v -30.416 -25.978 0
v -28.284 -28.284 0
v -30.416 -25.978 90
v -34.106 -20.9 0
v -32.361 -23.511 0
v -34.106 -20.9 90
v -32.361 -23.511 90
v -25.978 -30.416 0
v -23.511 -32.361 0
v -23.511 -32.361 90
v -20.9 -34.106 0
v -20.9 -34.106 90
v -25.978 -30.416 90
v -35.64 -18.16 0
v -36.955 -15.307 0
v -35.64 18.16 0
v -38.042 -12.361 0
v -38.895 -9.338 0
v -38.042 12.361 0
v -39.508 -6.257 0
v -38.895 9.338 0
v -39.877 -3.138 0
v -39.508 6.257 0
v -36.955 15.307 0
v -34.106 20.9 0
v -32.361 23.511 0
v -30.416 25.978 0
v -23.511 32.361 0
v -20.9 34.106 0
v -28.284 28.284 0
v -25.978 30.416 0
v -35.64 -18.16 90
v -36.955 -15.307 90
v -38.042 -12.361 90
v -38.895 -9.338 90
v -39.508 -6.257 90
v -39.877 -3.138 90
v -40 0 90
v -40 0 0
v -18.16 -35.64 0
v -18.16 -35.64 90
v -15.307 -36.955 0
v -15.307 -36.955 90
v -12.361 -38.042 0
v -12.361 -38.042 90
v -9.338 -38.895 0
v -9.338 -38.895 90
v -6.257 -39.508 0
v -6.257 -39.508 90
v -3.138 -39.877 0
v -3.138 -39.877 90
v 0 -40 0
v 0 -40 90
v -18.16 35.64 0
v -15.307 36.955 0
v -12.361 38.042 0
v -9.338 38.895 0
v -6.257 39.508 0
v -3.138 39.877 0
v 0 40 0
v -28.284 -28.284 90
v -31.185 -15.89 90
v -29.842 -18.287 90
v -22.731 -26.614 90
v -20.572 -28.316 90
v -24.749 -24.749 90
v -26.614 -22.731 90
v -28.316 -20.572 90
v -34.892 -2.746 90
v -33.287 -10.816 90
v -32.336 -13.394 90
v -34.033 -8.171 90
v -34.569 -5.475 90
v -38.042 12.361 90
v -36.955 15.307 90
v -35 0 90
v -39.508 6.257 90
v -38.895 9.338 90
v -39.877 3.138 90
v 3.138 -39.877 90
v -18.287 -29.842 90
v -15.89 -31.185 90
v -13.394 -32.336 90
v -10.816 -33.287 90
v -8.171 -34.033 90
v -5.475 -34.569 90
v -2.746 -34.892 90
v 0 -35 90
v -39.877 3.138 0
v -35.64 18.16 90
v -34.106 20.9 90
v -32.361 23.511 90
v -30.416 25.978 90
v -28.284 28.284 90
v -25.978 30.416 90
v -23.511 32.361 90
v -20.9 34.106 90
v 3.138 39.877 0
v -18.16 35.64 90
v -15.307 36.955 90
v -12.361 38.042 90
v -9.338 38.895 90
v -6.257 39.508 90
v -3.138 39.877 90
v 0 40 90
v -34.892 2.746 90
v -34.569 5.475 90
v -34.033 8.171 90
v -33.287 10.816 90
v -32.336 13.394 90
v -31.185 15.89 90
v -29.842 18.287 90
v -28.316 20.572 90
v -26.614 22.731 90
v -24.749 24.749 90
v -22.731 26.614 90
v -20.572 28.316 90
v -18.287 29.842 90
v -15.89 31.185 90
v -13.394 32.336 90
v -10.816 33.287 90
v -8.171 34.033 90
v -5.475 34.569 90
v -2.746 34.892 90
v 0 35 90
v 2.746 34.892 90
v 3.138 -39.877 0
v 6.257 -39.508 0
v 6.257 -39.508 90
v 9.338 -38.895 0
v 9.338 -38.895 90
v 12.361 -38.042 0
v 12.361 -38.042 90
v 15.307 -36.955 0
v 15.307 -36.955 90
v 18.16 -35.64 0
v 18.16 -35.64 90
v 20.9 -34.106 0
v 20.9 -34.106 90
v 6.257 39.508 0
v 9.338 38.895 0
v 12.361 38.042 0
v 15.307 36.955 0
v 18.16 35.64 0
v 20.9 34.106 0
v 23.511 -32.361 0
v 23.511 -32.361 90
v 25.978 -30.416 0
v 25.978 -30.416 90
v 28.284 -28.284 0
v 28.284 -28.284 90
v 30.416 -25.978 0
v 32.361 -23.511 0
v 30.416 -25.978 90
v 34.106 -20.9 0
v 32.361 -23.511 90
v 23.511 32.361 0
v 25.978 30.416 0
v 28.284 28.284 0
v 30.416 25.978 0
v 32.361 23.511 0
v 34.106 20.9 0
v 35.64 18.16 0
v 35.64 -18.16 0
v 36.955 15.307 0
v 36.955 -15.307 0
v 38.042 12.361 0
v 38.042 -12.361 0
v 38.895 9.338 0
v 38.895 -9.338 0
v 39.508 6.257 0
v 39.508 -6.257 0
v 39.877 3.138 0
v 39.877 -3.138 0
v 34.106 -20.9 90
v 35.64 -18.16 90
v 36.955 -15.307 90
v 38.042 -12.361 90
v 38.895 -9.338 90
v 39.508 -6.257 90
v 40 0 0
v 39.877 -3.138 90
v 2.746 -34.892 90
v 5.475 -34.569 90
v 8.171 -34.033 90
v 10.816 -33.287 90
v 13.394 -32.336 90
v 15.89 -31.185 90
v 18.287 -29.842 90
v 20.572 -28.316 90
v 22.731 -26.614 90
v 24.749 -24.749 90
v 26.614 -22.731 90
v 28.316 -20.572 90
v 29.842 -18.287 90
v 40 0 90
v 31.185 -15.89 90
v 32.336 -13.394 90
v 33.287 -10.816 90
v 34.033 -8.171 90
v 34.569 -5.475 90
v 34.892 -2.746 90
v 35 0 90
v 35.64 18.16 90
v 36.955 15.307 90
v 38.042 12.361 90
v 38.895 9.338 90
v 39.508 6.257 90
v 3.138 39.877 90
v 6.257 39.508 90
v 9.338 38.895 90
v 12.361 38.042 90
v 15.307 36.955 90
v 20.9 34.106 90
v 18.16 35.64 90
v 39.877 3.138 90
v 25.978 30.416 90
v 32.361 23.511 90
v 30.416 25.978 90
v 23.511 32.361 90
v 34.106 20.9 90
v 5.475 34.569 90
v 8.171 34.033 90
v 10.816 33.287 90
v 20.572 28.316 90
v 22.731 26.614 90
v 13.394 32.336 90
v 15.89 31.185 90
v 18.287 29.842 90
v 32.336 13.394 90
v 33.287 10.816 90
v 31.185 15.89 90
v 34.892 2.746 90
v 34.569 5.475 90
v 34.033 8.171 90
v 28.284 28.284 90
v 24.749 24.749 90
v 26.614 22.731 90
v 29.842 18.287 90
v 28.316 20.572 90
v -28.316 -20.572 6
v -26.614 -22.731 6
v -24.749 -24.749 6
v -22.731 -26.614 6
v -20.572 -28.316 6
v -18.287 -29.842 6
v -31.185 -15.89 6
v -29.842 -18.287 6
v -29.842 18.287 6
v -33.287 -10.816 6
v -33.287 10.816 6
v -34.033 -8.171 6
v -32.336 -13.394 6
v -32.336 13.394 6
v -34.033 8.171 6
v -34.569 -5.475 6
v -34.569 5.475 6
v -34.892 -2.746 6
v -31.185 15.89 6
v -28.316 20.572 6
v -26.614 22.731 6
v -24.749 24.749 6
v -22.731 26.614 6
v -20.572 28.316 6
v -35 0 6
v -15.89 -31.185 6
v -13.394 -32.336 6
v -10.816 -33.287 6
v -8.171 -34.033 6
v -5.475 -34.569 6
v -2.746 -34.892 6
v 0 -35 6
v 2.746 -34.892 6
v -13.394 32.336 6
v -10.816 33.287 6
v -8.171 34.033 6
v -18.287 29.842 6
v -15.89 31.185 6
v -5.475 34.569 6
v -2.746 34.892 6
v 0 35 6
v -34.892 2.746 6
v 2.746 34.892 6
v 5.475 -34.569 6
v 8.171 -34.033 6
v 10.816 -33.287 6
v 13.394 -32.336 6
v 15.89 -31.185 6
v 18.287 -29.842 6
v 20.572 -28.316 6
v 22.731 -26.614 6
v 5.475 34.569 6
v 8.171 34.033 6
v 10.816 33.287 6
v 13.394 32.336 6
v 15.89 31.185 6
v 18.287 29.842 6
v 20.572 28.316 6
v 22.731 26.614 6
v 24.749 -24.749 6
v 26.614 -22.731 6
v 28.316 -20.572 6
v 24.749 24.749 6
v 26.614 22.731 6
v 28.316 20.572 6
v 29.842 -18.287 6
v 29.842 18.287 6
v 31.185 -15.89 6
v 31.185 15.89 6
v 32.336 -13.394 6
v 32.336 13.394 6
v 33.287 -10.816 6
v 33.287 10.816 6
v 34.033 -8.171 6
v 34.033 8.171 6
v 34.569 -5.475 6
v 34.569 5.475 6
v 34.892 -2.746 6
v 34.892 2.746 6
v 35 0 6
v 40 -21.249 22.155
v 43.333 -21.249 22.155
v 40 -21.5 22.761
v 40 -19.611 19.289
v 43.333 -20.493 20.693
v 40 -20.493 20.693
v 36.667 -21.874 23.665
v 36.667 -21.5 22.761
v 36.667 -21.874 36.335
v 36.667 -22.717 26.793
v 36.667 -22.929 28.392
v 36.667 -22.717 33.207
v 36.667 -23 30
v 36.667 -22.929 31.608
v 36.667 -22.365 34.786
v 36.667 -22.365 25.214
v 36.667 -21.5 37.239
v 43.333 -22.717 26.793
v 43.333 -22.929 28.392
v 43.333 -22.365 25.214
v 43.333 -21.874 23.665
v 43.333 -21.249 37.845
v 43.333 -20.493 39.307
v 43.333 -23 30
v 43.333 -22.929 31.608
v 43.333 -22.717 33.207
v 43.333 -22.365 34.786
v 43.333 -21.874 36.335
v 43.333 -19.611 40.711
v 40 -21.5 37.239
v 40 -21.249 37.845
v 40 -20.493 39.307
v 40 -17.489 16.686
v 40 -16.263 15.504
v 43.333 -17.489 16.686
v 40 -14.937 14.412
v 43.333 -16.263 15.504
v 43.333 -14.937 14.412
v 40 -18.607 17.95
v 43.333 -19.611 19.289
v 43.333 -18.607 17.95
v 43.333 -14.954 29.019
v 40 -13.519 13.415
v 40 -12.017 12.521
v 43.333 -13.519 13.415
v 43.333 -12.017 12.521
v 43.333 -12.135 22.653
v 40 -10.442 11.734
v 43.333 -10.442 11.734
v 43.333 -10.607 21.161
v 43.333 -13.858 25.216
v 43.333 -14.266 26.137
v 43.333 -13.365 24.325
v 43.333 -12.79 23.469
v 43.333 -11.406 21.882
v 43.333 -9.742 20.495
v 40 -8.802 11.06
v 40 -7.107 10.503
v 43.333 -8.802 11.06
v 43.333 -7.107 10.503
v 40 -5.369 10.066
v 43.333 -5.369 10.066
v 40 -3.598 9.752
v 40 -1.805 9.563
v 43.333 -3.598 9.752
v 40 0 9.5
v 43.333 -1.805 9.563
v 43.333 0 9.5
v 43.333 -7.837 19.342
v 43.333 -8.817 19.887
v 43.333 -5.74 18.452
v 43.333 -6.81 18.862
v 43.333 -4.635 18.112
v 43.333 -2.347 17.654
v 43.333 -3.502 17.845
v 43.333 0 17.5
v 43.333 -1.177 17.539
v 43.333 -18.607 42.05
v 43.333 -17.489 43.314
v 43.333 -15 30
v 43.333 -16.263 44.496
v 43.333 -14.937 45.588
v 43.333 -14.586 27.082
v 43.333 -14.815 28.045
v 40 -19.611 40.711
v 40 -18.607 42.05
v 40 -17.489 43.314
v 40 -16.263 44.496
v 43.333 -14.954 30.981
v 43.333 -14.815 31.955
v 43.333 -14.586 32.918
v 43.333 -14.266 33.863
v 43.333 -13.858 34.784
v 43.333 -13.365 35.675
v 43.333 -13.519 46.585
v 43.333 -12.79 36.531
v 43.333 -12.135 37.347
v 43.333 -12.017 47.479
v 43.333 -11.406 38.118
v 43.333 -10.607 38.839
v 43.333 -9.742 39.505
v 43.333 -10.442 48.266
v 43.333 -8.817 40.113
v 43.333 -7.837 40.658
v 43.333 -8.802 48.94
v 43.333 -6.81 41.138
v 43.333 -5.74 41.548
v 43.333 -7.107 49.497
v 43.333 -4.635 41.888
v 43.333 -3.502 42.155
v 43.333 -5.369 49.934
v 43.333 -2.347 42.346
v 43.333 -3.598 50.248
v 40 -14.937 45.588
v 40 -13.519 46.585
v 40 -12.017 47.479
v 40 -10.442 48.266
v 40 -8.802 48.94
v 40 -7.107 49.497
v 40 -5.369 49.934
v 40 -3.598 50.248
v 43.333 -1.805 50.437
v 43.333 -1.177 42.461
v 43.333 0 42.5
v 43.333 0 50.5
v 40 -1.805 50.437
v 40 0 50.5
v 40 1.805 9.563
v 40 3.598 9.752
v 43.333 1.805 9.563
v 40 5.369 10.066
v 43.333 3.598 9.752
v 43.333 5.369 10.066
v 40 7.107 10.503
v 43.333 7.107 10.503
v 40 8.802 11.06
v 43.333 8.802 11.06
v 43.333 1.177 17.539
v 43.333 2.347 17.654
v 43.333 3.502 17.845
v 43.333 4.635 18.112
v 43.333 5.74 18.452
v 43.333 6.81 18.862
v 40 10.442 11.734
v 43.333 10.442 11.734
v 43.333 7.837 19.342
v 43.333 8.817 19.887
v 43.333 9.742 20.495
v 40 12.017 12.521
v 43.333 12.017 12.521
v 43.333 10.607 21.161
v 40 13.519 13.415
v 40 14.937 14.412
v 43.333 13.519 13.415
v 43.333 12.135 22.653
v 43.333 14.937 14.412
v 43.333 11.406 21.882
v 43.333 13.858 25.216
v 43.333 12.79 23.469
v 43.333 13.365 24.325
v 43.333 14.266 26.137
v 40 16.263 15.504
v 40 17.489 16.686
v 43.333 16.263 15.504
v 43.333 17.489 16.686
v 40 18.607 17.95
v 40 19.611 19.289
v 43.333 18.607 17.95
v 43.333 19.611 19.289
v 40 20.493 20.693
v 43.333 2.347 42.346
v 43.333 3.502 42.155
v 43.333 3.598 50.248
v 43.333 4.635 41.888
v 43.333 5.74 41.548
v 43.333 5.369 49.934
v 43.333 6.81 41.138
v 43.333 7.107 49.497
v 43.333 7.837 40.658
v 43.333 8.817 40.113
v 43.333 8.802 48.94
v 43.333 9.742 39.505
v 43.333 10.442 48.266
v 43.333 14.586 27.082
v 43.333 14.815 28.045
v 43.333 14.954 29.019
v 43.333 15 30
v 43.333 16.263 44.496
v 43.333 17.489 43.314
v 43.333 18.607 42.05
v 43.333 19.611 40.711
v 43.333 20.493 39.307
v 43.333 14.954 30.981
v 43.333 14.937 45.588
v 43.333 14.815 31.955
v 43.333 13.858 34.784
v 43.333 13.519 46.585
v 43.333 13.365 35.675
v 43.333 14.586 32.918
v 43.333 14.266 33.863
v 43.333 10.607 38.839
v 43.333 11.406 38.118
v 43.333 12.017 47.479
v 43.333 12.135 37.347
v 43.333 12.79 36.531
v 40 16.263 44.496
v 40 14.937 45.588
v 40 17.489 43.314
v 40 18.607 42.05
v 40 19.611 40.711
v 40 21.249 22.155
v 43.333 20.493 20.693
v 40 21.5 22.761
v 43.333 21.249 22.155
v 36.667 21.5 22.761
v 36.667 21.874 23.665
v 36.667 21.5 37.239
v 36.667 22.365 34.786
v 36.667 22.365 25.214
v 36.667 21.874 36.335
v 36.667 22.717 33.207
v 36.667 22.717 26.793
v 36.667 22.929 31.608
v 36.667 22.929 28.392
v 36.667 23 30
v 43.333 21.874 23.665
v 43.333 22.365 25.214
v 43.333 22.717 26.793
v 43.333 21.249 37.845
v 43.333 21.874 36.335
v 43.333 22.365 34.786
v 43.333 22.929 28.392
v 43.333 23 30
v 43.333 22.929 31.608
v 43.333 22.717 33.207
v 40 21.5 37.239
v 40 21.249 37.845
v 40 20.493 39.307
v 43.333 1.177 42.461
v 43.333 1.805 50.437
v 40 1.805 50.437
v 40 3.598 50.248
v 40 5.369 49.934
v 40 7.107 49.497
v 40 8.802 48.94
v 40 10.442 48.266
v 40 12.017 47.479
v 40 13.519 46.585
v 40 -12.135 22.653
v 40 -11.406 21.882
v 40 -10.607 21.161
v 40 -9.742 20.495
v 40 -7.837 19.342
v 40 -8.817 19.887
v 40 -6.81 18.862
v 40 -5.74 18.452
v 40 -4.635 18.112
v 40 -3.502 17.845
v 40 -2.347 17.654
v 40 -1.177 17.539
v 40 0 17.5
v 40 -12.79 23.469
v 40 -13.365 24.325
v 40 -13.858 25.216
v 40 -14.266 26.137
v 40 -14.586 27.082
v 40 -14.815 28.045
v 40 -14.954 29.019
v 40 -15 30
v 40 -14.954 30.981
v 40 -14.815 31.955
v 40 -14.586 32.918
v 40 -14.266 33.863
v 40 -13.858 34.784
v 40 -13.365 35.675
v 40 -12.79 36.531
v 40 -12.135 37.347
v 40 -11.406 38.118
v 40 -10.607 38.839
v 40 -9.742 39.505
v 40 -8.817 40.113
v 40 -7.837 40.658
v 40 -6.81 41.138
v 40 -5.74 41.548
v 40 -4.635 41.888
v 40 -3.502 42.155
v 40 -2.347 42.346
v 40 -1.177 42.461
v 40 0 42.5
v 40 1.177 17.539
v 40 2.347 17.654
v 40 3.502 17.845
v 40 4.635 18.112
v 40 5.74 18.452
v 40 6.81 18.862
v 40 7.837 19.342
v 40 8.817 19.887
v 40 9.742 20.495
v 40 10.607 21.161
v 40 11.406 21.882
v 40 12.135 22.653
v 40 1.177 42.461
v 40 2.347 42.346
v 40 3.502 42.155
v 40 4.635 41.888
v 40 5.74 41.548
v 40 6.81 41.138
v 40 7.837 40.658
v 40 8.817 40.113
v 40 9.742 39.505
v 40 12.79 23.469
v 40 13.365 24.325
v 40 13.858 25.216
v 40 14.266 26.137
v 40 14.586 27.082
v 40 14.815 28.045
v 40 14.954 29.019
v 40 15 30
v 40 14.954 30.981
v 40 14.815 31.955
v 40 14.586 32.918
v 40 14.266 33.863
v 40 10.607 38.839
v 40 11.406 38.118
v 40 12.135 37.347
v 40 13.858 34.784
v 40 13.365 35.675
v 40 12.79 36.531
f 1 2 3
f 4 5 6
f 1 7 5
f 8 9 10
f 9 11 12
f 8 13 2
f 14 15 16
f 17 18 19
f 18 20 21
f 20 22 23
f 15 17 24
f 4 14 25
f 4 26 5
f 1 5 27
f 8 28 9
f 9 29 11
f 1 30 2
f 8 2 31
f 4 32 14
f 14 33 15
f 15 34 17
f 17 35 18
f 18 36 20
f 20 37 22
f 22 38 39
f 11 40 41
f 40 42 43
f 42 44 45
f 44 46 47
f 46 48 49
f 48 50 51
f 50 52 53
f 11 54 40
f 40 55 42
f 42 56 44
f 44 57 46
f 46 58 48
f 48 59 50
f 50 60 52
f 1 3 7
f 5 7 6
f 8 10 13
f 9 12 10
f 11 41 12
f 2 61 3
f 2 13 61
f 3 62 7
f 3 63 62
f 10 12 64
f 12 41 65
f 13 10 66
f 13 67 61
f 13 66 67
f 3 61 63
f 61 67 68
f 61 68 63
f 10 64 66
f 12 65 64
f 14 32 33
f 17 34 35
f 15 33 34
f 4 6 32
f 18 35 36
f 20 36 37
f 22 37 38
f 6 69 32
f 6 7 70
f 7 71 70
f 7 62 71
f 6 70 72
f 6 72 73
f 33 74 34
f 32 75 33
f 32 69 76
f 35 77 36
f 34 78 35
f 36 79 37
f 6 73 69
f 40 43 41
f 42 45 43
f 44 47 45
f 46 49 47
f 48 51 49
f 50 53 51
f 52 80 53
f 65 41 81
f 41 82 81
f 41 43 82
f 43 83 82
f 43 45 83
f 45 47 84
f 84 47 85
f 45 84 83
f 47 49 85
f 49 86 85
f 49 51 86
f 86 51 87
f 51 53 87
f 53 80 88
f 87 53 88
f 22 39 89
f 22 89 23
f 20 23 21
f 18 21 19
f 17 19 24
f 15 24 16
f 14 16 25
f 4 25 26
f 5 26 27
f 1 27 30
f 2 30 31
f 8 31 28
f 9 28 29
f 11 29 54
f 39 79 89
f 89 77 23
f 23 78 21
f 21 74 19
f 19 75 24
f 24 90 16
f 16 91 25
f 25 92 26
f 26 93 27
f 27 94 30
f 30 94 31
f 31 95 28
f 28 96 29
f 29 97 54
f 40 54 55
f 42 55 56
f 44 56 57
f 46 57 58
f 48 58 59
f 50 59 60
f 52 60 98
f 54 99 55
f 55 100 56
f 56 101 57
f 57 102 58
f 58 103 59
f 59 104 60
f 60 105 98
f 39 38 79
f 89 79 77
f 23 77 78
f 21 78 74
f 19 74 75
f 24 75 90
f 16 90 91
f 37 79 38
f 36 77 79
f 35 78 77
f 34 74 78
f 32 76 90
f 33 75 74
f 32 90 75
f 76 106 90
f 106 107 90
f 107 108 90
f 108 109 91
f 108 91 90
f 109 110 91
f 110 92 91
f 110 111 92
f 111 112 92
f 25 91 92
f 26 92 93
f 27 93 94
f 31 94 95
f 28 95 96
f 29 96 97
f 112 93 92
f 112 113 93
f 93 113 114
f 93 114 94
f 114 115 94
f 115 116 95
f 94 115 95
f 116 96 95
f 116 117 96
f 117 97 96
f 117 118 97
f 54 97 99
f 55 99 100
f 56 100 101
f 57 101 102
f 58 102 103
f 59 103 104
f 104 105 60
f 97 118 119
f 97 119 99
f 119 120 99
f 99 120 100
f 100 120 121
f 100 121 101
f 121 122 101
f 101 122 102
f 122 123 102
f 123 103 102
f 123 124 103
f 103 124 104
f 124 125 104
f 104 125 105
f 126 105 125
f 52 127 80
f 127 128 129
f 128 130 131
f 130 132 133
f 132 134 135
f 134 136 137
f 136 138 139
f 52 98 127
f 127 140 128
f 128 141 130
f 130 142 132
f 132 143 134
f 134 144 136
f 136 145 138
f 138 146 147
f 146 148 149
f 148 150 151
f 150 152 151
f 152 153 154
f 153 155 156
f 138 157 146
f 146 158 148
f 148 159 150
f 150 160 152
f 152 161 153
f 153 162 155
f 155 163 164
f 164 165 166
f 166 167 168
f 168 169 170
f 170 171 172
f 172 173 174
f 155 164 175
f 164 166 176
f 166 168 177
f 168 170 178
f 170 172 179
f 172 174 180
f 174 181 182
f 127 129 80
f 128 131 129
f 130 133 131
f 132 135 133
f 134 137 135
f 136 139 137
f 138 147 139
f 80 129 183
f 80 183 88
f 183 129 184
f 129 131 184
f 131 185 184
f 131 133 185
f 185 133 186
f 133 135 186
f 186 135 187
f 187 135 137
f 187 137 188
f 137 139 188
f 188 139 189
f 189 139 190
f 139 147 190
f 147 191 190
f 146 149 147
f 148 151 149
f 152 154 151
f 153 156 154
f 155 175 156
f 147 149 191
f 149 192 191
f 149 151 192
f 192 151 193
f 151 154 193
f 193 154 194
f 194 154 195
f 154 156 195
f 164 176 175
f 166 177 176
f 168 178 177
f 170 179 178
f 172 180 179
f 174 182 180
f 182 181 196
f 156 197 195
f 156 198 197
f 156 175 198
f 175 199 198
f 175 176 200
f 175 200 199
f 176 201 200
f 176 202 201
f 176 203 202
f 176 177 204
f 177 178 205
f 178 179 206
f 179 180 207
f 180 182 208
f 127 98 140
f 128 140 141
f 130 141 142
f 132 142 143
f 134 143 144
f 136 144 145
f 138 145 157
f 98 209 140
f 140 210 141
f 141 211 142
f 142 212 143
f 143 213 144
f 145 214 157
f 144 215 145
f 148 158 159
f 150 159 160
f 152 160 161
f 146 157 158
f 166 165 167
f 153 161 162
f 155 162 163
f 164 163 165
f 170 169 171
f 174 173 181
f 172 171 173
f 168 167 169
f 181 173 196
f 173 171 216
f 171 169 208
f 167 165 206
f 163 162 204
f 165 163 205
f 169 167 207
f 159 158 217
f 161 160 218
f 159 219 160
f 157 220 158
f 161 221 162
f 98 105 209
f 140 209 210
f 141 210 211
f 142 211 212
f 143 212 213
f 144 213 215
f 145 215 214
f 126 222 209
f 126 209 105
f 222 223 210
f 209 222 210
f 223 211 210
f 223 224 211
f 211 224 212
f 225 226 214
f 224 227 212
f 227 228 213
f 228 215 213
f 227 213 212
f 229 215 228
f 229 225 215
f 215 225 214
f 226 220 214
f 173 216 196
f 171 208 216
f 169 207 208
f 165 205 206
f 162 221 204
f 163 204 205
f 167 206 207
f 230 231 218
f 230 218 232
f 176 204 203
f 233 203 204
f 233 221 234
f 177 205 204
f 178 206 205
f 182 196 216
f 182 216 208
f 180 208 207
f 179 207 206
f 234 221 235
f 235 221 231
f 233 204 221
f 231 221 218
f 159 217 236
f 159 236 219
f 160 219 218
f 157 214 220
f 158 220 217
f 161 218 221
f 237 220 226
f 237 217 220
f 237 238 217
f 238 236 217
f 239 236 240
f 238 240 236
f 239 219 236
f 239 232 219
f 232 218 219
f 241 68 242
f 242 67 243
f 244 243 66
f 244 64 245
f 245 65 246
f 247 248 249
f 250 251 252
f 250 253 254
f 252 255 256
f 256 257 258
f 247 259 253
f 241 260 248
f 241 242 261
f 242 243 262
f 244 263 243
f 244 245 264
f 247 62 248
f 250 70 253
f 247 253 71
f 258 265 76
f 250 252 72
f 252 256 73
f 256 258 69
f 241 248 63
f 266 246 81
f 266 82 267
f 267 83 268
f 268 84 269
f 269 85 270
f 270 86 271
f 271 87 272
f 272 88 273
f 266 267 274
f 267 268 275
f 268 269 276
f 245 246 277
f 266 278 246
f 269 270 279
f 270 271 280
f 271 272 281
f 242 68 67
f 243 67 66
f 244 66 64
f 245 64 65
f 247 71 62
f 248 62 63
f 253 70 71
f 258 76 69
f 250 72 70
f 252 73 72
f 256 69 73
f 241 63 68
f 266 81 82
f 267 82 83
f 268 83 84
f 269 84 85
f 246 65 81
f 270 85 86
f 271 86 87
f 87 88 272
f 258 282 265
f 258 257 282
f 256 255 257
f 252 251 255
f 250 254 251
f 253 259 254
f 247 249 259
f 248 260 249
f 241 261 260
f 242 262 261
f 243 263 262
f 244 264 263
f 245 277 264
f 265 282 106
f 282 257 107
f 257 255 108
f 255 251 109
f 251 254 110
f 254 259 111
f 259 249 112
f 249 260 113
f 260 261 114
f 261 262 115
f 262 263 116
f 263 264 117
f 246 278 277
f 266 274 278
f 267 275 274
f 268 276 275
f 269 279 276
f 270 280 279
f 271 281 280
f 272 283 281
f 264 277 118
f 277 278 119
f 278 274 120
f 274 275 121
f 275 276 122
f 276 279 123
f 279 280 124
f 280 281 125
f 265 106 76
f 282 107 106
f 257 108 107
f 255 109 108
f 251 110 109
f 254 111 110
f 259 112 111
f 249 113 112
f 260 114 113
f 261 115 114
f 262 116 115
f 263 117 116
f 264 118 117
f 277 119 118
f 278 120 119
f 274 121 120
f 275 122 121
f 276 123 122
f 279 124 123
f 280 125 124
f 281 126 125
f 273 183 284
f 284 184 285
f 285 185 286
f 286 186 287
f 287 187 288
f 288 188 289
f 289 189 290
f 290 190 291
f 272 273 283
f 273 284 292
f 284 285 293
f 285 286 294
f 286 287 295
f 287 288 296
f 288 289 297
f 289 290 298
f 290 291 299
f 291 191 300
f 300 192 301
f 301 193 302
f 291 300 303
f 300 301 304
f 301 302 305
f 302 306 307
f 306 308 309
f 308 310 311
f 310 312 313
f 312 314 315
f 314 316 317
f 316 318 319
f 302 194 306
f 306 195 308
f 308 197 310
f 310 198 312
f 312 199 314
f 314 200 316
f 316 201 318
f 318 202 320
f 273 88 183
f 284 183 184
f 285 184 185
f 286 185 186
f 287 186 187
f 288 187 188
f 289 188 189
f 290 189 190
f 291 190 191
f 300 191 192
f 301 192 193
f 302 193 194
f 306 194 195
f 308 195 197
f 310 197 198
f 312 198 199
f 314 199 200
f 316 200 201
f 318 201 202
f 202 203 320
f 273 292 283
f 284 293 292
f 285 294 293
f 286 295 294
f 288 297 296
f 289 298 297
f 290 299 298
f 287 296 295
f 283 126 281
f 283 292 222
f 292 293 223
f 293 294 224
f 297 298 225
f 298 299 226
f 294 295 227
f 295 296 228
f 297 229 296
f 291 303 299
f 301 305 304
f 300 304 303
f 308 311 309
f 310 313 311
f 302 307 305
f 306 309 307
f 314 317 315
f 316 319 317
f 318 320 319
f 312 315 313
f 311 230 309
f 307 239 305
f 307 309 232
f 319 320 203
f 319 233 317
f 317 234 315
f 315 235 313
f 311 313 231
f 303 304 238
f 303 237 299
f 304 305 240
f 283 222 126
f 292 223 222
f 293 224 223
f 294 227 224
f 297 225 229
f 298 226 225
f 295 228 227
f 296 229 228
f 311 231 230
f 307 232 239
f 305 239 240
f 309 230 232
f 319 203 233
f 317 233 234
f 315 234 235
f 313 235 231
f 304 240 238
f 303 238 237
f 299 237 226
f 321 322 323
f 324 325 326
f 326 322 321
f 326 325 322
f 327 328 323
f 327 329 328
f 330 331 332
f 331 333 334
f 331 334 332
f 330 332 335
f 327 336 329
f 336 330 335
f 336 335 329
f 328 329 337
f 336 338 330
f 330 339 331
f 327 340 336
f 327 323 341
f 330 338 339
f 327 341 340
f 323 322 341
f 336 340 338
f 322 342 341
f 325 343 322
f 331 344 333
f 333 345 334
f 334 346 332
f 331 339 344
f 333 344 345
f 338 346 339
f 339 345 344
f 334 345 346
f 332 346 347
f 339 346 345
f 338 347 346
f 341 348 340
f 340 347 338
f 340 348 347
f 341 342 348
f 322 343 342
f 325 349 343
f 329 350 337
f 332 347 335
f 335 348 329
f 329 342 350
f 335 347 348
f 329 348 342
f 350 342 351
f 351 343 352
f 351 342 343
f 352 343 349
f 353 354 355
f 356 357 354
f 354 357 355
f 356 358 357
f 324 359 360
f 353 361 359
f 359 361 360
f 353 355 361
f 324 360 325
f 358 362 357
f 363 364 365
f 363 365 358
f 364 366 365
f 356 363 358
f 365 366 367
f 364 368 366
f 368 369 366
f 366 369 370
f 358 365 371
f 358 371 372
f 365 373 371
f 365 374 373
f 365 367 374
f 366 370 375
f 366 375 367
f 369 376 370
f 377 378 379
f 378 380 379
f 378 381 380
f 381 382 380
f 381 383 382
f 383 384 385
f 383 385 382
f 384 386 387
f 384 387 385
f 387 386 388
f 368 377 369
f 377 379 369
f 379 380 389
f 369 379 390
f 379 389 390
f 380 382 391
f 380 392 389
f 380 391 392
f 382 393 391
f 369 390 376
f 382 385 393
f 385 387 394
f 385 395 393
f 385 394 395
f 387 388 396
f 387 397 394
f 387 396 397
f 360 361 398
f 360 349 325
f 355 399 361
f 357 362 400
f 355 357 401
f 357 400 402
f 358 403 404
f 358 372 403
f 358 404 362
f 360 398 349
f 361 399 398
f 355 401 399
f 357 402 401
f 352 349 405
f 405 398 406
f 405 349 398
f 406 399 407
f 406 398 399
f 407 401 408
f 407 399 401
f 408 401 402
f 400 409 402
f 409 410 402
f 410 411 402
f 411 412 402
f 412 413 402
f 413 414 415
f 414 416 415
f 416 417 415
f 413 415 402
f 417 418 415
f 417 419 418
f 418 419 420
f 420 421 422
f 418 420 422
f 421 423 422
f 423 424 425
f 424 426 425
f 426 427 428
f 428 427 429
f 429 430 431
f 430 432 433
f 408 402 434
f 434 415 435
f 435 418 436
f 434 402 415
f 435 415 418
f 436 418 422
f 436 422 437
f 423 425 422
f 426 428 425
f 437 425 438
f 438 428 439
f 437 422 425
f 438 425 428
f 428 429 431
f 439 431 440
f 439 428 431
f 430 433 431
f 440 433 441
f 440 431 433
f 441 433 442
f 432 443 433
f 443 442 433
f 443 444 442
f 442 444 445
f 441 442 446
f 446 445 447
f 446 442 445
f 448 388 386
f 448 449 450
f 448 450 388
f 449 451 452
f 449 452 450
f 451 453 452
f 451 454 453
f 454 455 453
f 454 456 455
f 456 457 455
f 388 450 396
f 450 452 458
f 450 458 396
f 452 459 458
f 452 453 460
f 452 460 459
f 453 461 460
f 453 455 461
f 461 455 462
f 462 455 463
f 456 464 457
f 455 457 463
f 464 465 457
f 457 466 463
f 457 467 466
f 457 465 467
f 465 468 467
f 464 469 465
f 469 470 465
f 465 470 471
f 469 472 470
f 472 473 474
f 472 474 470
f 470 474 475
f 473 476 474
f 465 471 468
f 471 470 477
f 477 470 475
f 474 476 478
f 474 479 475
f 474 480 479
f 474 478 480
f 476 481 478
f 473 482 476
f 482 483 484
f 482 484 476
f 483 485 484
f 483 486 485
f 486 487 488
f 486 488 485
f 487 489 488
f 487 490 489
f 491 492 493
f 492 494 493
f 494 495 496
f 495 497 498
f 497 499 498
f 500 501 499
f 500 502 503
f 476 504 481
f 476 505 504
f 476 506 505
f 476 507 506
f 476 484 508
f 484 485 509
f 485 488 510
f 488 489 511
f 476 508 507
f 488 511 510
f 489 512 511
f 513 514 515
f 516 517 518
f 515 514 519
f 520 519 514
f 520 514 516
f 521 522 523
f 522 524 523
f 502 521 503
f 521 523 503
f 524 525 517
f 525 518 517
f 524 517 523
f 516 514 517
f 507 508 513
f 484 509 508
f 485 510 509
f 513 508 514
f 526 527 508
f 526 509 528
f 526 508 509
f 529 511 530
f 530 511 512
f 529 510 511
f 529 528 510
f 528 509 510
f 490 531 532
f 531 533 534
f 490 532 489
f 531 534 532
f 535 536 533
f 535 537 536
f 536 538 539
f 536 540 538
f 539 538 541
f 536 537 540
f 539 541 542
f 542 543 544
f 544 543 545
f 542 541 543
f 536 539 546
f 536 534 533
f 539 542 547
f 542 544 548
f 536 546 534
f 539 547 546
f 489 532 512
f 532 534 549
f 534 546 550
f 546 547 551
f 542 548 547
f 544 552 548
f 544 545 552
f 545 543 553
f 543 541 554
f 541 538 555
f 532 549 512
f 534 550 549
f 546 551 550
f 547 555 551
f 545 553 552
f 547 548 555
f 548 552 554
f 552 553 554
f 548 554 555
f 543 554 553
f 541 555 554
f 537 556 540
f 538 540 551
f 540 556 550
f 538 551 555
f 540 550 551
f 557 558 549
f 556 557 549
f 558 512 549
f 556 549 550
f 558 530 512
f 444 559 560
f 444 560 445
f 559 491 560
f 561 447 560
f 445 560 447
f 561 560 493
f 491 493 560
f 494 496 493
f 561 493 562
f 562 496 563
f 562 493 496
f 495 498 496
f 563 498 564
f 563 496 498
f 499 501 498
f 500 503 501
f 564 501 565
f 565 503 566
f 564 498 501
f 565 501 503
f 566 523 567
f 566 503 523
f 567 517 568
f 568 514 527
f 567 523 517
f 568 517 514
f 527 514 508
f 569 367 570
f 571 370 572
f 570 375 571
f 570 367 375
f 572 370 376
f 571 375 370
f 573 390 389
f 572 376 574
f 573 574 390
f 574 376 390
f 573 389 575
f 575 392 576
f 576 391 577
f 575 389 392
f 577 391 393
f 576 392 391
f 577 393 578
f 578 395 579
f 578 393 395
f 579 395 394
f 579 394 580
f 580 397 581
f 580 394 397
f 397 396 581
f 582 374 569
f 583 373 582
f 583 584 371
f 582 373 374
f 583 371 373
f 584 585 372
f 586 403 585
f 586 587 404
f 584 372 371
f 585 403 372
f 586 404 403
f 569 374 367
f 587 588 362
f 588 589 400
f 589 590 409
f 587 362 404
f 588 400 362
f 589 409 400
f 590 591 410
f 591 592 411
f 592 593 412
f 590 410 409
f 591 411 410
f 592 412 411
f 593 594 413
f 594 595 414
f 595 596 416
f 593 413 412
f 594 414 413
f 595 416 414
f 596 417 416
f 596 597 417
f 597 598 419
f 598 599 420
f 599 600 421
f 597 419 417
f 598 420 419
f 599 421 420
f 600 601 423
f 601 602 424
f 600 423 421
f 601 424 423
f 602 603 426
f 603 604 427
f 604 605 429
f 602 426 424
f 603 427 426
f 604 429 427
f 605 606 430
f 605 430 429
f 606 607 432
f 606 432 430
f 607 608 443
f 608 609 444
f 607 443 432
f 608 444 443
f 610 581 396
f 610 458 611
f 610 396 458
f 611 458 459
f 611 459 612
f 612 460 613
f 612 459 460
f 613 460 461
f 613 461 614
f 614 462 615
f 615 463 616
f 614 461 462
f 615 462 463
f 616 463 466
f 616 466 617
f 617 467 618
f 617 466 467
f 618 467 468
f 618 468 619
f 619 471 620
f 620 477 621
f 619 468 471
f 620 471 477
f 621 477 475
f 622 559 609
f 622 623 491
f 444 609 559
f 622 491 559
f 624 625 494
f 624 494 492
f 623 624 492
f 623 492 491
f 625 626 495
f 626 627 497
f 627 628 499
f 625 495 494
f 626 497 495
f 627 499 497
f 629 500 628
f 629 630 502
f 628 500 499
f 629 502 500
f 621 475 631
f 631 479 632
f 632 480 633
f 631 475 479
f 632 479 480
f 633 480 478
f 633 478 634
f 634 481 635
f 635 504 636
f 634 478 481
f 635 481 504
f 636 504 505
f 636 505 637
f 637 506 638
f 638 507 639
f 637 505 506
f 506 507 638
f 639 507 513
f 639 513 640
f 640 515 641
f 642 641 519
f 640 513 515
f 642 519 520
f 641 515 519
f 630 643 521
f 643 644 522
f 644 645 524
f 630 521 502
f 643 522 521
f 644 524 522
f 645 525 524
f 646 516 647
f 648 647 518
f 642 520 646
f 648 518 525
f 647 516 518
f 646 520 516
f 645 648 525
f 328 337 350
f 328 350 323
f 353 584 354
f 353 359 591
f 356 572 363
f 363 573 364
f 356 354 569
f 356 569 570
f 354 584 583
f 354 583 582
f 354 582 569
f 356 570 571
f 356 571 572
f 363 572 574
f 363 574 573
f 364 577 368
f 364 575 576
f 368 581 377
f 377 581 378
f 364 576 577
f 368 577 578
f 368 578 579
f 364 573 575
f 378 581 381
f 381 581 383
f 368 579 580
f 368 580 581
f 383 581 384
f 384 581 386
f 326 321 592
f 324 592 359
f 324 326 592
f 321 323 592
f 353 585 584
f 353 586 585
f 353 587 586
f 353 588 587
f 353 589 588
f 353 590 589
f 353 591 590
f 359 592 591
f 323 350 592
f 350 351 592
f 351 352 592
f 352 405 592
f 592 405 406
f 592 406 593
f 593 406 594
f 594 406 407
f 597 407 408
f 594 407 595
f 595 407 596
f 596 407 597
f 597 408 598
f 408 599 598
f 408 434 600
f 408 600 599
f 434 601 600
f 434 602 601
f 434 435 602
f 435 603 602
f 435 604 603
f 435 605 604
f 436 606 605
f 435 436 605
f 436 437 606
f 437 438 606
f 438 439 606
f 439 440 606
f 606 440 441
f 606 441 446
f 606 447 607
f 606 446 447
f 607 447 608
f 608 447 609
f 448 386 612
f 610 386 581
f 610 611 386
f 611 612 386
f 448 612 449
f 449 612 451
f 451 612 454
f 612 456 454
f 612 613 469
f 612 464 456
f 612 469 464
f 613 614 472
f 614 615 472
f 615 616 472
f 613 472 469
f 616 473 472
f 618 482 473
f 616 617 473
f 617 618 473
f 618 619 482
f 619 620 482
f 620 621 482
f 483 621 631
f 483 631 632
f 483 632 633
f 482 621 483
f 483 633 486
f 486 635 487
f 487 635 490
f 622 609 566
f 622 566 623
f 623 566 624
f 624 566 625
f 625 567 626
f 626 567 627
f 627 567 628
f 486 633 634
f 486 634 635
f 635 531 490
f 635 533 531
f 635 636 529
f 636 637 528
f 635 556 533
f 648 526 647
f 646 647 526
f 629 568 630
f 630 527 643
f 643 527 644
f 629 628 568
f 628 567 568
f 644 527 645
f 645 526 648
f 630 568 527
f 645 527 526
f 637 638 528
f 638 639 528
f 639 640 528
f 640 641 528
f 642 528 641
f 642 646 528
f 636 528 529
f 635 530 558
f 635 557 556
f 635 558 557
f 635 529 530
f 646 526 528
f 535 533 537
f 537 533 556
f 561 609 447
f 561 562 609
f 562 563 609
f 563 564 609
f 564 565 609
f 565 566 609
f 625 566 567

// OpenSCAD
$fn = 80;

outer_r = 40;
inner_r = 35;
height = 90;
bottom = 6;

// Body
difference() {
    cylinder(r=outer_r, h=height);
    translate([0, 0, bottom])
        cylinder(r=inner_r, h=height);
}

// Handle on +X side
handle_h = 30;
handle_w = 25;
handle_thick = 8;
handle_z = (height - handle_h) / 2;

translate([outer_r, 0, handle_z])
difference() {
    scale([handle_w / handle_h, 1, 1])
        rotate([-90, 0, 0])
        rotate([0, 90, 0])
        linear_extrude(height = handle_thick, center = true)
        resize([handle_h + handle_thick * 2, handle_w + handle_thick * 2])
        circle(d = 1);
    scale([handle_w / handle_h, 1, 1])
        rotate([-90, 0, 0])
        rotate([0, 90, 0])
        linear_extrude(height = handle_thick + 2, center = true)
        resize([handle_h, handle_w])
        circle(d = 1);
    // Cut inner half (toward mug body)
    translate([-(handle_w + handle_thick * 2) / 2 - 1, 0, 0])
        cube([handle_w + handle_thick * 2 + 2, handle_w + handle_thick * 2 + 2, handle_h + handle_thick * 2 + 2], center = true);
}
